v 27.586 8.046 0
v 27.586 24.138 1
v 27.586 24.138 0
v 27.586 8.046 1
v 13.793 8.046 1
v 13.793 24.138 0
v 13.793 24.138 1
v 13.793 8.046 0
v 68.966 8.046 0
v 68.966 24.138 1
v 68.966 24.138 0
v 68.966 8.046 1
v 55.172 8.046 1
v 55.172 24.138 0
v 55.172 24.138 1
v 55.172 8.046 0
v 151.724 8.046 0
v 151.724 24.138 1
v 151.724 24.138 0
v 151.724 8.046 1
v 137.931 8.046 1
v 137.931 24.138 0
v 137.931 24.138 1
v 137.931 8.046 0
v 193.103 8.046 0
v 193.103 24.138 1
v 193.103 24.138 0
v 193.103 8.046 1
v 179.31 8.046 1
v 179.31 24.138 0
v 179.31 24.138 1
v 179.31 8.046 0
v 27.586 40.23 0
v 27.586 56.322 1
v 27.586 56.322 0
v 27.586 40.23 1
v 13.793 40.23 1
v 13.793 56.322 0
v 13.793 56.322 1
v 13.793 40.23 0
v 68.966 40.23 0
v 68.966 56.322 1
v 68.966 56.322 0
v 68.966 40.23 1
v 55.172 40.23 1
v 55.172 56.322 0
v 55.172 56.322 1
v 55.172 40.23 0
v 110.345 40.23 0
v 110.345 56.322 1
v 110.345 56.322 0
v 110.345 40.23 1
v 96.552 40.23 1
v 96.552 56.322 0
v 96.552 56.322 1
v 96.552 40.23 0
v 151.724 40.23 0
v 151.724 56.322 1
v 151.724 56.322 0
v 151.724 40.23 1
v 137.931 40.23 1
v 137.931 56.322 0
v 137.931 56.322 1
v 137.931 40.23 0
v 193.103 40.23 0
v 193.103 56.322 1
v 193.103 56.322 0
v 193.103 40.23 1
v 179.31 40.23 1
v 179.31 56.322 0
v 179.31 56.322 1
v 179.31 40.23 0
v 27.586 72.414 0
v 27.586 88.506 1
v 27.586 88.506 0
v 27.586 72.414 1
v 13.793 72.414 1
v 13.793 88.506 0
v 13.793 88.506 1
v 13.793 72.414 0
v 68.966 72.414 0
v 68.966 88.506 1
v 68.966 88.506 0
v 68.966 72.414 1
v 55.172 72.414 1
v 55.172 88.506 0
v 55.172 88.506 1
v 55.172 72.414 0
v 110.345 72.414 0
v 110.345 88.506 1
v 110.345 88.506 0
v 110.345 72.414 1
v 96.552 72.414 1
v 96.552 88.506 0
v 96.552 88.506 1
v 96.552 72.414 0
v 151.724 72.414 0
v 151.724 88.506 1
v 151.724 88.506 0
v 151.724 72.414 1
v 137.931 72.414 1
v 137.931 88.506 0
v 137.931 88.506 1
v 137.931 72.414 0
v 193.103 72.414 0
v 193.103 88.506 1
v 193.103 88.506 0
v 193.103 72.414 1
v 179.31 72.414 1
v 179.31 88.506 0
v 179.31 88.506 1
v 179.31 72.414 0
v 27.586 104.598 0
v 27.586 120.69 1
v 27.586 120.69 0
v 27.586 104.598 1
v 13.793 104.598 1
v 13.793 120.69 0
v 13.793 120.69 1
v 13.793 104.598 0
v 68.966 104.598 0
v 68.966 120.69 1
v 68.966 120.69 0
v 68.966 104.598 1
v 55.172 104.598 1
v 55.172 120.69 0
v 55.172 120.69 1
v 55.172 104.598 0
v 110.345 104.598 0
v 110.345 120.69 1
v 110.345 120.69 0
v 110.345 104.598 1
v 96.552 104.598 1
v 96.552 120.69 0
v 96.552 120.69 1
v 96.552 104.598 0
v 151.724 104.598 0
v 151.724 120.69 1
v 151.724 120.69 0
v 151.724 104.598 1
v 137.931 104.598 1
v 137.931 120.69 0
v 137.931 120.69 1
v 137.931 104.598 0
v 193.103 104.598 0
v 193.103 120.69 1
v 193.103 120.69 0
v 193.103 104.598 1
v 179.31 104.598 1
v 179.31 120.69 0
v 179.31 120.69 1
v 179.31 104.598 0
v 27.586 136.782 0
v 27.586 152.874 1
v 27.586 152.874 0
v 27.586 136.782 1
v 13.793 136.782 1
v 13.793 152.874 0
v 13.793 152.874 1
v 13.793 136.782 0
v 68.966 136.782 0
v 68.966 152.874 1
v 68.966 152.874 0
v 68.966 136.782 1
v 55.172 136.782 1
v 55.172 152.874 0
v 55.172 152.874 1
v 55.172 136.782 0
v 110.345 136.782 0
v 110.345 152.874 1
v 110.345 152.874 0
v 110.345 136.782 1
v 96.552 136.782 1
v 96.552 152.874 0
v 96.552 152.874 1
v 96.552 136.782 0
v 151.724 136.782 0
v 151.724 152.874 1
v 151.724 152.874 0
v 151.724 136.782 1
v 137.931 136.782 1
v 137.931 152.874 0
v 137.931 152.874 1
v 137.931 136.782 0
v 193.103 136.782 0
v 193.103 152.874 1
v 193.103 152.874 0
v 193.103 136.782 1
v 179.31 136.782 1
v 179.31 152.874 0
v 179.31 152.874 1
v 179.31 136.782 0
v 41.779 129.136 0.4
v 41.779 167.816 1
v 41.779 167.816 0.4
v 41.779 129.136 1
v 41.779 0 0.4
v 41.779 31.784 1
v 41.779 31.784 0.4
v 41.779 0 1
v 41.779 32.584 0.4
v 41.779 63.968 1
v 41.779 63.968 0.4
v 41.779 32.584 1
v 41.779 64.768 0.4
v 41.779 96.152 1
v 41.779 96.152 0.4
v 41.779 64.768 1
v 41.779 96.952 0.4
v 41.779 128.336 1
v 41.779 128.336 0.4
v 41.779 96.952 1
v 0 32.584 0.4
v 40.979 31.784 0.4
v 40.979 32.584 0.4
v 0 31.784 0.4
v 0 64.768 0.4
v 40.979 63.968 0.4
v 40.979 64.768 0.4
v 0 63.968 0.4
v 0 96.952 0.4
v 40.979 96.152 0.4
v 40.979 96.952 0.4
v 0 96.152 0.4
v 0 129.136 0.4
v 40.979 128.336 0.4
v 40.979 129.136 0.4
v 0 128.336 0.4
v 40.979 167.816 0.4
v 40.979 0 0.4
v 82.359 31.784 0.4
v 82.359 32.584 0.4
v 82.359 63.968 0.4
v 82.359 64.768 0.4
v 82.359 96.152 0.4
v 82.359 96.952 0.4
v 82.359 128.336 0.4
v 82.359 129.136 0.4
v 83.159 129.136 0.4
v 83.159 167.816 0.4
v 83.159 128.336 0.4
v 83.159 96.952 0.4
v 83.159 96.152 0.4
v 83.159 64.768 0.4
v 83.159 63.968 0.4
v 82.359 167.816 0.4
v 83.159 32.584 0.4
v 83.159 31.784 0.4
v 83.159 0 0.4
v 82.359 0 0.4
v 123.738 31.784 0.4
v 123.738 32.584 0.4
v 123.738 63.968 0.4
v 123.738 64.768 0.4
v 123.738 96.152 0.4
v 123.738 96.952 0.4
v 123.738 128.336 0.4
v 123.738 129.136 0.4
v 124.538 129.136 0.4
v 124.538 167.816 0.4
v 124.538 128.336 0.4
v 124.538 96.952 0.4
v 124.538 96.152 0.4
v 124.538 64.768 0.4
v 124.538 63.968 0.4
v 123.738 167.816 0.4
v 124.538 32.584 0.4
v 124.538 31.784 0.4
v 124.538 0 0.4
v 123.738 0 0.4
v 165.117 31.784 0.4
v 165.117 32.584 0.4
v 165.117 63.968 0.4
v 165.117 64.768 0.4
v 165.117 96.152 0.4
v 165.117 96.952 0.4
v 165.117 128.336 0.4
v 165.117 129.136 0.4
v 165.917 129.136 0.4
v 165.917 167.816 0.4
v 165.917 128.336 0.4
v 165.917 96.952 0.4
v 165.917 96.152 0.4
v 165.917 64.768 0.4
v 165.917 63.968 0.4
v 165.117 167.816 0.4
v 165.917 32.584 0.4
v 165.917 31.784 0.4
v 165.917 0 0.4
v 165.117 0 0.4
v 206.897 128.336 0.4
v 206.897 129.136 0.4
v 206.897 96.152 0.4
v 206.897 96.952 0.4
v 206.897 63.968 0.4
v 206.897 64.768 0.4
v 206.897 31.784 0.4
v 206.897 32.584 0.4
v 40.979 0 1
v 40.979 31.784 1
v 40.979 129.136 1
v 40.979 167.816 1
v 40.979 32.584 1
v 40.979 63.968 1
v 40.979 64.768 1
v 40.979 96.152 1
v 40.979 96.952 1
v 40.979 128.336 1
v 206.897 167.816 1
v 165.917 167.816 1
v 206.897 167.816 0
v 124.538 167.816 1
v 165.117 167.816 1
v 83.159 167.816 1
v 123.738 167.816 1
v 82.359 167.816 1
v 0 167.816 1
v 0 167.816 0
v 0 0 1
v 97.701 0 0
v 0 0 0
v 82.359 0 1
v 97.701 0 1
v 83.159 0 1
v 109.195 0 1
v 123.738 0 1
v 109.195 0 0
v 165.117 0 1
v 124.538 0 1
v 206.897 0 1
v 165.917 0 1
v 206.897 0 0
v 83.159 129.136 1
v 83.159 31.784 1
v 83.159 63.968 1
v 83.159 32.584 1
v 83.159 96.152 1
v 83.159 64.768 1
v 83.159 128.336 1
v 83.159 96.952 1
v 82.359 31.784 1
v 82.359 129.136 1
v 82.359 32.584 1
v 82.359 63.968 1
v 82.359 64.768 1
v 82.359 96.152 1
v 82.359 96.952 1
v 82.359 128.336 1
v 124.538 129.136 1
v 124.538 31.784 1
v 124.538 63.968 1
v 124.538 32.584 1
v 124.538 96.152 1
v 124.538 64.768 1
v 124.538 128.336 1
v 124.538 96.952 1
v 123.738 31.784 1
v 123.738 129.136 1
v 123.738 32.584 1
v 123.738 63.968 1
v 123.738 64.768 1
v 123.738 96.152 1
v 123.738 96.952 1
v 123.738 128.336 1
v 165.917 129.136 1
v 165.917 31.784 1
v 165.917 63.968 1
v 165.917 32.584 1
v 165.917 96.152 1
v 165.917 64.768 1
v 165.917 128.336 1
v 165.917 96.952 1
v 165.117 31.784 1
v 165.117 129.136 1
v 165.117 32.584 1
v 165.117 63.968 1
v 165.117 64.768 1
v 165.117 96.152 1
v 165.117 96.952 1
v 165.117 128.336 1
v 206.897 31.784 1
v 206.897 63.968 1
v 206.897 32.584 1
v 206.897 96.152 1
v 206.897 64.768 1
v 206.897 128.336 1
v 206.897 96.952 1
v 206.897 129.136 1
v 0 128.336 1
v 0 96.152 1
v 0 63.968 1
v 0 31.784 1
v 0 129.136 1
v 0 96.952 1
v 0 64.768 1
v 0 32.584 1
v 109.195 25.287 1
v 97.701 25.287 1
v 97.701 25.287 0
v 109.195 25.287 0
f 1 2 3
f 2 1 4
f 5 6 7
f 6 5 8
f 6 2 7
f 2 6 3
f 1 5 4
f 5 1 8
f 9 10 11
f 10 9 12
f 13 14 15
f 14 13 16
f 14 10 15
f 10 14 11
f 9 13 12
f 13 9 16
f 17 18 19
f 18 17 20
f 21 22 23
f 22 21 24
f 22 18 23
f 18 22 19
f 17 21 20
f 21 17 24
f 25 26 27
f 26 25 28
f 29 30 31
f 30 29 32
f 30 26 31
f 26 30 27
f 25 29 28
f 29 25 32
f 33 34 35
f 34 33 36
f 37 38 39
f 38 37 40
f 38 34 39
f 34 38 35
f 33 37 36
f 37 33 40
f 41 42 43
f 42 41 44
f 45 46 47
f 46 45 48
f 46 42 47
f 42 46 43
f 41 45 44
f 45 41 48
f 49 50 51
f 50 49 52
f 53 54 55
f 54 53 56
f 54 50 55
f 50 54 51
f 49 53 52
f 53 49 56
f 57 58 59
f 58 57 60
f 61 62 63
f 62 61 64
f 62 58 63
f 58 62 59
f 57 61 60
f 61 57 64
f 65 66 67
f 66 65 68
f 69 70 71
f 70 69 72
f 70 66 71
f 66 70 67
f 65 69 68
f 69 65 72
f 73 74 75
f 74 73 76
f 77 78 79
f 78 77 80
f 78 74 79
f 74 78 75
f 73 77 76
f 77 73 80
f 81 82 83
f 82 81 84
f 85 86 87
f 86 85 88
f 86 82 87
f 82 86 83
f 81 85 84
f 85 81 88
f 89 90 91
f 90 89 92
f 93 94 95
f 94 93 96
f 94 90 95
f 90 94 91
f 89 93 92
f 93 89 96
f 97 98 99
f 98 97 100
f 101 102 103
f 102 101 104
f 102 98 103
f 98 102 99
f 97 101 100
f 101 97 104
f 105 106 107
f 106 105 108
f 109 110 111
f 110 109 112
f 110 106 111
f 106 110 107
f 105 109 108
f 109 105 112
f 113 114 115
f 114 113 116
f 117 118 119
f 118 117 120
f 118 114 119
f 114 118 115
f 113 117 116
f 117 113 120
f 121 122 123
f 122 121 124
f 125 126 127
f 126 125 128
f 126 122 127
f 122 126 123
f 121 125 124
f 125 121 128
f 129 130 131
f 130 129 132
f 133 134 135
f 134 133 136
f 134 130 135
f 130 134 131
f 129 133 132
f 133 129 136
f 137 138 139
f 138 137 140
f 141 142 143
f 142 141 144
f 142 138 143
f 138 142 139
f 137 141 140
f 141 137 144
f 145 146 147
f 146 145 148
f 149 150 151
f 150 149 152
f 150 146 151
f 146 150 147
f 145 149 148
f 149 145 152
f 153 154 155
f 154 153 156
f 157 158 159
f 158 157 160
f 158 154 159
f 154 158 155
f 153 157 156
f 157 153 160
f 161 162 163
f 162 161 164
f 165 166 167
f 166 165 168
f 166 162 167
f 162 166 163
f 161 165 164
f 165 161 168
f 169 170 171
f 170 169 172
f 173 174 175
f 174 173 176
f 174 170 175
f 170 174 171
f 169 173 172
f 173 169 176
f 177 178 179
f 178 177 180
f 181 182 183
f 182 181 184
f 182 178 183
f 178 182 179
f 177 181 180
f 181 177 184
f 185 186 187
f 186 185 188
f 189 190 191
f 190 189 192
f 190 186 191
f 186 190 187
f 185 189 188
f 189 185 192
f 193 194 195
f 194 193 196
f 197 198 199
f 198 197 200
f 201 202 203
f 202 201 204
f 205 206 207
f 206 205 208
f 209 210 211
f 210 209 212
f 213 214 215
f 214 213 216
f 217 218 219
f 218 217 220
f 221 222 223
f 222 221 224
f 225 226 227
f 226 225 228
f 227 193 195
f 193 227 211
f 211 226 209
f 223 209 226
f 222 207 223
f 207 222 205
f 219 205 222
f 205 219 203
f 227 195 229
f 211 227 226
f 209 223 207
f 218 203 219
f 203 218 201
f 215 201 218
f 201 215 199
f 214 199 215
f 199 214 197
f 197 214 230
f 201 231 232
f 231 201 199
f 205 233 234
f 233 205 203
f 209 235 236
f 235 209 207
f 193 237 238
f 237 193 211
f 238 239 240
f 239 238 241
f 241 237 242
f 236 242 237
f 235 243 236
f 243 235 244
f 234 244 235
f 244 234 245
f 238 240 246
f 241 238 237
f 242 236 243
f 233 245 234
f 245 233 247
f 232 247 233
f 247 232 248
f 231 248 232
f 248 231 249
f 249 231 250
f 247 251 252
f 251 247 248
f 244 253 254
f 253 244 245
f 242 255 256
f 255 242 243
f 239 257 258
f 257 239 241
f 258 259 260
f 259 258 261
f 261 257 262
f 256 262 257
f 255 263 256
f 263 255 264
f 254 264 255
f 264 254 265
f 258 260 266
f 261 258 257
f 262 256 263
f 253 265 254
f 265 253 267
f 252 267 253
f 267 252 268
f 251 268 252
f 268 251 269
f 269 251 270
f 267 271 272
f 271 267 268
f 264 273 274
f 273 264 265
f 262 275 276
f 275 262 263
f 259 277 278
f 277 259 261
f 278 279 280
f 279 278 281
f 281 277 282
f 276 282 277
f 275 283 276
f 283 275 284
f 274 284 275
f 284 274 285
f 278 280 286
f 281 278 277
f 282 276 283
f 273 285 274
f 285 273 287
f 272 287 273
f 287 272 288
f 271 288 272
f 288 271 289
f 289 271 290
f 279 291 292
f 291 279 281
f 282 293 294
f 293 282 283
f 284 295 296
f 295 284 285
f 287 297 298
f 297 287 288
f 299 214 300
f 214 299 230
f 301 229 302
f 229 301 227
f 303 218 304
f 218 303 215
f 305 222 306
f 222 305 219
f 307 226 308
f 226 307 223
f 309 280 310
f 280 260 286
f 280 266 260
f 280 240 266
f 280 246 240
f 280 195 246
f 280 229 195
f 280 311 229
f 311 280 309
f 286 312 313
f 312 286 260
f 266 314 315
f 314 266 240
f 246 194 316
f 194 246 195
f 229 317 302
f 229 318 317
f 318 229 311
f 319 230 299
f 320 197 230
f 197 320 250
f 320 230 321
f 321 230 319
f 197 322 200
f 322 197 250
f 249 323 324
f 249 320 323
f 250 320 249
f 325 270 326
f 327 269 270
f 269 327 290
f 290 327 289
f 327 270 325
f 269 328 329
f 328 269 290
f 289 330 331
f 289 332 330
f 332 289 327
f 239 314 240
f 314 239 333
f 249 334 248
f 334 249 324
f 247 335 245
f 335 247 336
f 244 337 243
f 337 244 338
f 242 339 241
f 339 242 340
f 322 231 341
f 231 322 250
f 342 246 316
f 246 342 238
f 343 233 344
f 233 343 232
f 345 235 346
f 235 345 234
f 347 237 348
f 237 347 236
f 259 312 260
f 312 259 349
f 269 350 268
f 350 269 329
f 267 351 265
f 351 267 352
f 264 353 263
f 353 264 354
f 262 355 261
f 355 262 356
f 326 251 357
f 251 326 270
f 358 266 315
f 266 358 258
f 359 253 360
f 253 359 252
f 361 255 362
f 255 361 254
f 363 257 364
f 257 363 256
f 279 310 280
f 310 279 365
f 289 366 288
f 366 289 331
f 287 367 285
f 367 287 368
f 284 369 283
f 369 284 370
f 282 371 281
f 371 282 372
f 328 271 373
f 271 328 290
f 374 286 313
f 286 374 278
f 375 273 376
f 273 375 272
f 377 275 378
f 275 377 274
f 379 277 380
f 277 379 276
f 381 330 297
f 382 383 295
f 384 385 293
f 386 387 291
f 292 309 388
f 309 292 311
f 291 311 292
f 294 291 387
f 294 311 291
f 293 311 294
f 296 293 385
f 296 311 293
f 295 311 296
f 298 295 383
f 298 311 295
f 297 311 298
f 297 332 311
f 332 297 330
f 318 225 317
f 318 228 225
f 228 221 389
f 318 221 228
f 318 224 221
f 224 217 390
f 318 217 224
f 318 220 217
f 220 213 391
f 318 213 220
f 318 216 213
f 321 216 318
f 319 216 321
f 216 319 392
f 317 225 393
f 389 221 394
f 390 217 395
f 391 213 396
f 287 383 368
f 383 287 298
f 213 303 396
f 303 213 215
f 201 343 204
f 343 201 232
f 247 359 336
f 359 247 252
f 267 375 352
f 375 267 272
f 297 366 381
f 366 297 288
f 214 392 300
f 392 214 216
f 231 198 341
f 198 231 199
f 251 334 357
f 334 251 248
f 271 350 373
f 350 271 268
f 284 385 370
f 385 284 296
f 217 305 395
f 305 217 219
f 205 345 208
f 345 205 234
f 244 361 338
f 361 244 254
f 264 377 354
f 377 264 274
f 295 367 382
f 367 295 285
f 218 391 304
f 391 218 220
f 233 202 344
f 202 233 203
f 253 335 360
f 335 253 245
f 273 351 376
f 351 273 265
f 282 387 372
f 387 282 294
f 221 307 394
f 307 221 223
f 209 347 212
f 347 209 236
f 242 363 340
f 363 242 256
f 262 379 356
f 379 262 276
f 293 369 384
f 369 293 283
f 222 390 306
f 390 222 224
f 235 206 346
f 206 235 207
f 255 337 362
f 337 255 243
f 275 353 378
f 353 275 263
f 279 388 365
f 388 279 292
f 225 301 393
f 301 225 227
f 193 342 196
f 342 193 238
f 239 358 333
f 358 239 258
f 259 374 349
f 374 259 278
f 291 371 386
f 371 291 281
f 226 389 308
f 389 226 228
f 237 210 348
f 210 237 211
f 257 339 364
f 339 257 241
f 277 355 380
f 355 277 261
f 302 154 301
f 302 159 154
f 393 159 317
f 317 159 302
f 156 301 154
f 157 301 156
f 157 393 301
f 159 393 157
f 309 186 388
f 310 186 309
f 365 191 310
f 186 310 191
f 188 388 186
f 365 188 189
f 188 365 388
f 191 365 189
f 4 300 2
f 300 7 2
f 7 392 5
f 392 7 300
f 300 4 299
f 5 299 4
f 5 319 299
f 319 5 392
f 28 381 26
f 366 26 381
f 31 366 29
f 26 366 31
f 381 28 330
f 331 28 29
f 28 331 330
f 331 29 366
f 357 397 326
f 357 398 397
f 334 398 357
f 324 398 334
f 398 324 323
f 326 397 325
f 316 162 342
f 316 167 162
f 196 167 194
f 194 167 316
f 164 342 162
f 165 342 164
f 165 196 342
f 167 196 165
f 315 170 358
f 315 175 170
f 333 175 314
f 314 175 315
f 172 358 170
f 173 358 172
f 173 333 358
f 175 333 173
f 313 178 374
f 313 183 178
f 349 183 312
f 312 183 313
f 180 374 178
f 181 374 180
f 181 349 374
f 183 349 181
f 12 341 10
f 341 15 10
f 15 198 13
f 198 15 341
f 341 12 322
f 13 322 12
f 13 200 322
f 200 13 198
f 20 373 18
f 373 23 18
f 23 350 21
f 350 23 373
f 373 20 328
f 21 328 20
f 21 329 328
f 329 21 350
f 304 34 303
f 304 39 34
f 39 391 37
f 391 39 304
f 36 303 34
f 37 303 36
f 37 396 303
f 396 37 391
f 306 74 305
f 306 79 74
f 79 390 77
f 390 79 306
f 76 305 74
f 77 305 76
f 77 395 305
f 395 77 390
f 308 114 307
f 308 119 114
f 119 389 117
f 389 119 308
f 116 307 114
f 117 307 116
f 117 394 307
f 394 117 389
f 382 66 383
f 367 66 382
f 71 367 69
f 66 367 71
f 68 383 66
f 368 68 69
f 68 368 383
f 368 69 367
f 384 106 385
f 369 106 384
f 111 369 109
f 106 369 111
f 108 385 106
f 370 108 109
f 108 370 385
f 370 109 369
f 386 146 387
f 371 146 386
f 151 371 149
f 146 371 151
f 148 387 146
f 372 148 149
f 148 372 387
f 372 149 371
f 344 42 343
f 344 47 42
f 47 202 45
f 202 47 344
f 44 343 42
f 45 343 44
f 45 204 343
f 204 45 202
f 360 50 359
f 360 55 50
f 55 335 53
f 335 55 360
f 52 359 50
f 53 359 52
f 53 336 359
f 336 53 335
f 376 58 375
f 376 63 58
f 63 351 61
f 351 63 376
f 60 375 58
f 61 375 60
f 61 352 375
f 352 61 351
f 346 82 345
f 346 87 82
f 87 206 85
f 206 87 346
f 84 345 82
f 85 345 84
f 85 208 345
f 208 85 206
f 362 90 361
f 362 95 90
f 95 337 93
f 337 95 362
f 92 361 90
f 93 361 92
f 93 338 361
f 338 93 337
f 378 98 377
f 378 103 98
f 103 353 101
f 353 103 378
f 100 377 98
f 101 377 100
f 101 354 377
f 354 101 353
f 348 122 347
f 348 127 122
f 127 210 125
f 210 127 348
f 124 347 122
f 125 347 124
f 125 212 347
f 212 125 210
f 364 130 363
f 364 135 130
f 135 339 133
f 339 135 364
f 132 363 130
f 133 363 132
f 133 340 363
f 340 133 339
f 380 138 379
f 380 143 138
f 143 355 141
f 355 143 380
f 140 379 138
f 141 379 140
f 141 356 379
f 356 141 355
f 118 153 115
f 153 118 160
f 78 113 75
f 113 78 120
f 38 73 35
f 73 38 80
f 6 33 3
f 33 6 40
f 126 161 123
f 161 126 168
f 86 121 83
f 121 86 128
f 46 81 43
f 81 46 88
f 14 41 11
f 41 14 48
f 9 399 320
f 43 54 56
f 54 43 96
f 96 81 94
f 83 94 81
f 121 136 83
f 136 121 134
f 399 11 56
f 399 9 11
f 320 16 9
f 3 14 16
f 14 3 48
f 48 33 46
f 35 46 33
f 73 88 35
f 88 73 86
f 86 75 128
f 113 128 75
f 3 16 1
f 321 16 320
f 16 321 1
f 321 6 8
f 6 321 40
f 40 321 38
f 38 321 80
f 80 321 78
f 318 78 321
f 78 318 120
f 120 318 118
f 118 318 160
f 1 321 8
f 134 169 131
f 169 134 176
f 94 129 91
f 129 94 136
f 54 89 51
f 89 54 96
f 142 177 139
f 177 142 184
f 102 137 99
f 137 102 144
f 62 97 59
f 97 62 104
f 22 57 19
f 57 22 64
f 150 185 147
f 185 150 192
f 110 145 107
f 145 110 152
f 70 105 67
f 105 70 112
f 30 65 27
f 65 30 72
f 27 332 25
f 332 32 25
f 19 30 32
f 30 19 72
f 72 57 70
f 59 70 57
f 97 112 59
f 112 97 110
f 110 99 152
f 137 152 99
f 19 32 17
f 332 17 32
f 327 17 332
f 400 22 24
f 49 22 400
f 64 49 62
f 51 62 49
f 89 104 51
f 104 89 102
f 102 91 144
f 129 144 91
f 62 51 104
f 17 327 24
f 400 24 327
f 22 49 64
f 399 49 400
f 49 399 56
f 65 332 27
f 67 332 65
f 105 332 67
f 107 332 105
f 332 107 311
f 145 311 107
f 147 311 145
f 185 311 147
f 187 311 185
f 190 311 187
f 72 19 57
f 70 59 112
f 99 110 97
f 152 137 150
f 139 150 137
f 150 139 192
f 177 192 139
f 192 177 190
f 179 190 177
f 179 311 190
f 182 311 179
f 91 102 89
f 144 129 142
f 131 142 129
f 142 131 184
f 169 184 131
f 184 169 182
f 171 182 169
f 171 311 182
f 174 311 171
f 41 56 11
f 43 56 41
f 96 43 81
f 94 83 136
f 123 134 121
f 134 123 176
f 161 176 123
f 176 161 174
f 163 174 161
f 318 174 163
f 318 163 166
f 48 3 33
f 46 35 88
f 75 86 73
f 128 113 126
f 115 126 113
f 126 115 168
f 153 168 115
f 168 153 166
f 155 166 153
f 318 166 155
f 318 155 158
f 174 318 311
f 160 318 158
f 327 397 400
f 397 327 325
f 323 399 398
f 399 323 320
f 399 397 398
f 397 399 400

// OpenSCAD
/*
 * PROMPT: H0 scale (1:87) Eastern European prefab apartment block — front wall panel, flat for FDM printing. Five bays wide, five floors tall with parapet, regular windows on all bays/floors except ground-floor centre bay which has an entrance door instead. Vertical panel-joint grooves at bay boundaries, horizontal floor-line grooves. Panel lies flat, exterior face up.
 */

$fn = 32;

S          = 1/87;
panel_t    = 1.0;

floors     = 5;
bld_w      = 18000 * S;   // 206.9 mm
floor_h    = 2800  * S;   //  32.2 mm
bld_h      = floors * floor_h;
parapet_h  = 600   * S;   //   6.9 mm
wall_panel_h = bld_h + parapet_h;

n_bays     = 5;
bay_w      = bld_w / n_bays;   // 41.4 mm
center_bay = floor(n_bays / 2);

win_w      = 1200 * S;   // 13.8 mm
win_h      = 1400 * S;   // 16.1 mm
door_w     = 1000 * S;   // 11.5 mm
door_h     = 2200 * S;   // 25.3 mm

groove_w   = 0.8;
groove_d   = 0.6;

module wall_front() {
    difference() {
        // Base slab
        cube([bld_w, wall_panel_h, panel_t]);

        // Windows: all floors, all bays, except ground floor centre bay (door there)
        for (f = [0 : floors - 1]) {
            for (b = [0 : n_bays - 1]) {
                if (!(f == 0 && b == center_bay)) {
                    translate([
                        b * bay_w + (bay_w - win_w) / 2,
                        f * floor_h + (floor_h - win_h) / 2,
                        -1
                    ])
                    cube([win_w, win_h, panel_t + 2]);
                }
            }
        }

        // Entrance door at ground floor, centre bay
        translate([
            center_bay * bay_w + (bay_w - door_w) / 2,
            0,
            -1
        ])
        cube([door_w, door_h, panel_t + 2]);

        // Vertical panel-joint grooves on exterior face (Z = panel_t - groove_d)
        for (b = [1 : n_bays - 1]) {
            translate([
                b * bay_w - groove_w / 2,
                0,
                panel_t - groove_d
            ])
            cube([groove_w, wall_panel_h, groove_d + 1]);
        }

        // Horizontal floor-line grooves on exterior face
        for (f = [1 : floors - 1]) {
            translate([
                0,
                f * floor_h - groove_w / 2,
                panel_t - groove_d
            ])
            cube([bld_w, groove_w, groove_d + 1]);
        }
    }
}

wall_front();
